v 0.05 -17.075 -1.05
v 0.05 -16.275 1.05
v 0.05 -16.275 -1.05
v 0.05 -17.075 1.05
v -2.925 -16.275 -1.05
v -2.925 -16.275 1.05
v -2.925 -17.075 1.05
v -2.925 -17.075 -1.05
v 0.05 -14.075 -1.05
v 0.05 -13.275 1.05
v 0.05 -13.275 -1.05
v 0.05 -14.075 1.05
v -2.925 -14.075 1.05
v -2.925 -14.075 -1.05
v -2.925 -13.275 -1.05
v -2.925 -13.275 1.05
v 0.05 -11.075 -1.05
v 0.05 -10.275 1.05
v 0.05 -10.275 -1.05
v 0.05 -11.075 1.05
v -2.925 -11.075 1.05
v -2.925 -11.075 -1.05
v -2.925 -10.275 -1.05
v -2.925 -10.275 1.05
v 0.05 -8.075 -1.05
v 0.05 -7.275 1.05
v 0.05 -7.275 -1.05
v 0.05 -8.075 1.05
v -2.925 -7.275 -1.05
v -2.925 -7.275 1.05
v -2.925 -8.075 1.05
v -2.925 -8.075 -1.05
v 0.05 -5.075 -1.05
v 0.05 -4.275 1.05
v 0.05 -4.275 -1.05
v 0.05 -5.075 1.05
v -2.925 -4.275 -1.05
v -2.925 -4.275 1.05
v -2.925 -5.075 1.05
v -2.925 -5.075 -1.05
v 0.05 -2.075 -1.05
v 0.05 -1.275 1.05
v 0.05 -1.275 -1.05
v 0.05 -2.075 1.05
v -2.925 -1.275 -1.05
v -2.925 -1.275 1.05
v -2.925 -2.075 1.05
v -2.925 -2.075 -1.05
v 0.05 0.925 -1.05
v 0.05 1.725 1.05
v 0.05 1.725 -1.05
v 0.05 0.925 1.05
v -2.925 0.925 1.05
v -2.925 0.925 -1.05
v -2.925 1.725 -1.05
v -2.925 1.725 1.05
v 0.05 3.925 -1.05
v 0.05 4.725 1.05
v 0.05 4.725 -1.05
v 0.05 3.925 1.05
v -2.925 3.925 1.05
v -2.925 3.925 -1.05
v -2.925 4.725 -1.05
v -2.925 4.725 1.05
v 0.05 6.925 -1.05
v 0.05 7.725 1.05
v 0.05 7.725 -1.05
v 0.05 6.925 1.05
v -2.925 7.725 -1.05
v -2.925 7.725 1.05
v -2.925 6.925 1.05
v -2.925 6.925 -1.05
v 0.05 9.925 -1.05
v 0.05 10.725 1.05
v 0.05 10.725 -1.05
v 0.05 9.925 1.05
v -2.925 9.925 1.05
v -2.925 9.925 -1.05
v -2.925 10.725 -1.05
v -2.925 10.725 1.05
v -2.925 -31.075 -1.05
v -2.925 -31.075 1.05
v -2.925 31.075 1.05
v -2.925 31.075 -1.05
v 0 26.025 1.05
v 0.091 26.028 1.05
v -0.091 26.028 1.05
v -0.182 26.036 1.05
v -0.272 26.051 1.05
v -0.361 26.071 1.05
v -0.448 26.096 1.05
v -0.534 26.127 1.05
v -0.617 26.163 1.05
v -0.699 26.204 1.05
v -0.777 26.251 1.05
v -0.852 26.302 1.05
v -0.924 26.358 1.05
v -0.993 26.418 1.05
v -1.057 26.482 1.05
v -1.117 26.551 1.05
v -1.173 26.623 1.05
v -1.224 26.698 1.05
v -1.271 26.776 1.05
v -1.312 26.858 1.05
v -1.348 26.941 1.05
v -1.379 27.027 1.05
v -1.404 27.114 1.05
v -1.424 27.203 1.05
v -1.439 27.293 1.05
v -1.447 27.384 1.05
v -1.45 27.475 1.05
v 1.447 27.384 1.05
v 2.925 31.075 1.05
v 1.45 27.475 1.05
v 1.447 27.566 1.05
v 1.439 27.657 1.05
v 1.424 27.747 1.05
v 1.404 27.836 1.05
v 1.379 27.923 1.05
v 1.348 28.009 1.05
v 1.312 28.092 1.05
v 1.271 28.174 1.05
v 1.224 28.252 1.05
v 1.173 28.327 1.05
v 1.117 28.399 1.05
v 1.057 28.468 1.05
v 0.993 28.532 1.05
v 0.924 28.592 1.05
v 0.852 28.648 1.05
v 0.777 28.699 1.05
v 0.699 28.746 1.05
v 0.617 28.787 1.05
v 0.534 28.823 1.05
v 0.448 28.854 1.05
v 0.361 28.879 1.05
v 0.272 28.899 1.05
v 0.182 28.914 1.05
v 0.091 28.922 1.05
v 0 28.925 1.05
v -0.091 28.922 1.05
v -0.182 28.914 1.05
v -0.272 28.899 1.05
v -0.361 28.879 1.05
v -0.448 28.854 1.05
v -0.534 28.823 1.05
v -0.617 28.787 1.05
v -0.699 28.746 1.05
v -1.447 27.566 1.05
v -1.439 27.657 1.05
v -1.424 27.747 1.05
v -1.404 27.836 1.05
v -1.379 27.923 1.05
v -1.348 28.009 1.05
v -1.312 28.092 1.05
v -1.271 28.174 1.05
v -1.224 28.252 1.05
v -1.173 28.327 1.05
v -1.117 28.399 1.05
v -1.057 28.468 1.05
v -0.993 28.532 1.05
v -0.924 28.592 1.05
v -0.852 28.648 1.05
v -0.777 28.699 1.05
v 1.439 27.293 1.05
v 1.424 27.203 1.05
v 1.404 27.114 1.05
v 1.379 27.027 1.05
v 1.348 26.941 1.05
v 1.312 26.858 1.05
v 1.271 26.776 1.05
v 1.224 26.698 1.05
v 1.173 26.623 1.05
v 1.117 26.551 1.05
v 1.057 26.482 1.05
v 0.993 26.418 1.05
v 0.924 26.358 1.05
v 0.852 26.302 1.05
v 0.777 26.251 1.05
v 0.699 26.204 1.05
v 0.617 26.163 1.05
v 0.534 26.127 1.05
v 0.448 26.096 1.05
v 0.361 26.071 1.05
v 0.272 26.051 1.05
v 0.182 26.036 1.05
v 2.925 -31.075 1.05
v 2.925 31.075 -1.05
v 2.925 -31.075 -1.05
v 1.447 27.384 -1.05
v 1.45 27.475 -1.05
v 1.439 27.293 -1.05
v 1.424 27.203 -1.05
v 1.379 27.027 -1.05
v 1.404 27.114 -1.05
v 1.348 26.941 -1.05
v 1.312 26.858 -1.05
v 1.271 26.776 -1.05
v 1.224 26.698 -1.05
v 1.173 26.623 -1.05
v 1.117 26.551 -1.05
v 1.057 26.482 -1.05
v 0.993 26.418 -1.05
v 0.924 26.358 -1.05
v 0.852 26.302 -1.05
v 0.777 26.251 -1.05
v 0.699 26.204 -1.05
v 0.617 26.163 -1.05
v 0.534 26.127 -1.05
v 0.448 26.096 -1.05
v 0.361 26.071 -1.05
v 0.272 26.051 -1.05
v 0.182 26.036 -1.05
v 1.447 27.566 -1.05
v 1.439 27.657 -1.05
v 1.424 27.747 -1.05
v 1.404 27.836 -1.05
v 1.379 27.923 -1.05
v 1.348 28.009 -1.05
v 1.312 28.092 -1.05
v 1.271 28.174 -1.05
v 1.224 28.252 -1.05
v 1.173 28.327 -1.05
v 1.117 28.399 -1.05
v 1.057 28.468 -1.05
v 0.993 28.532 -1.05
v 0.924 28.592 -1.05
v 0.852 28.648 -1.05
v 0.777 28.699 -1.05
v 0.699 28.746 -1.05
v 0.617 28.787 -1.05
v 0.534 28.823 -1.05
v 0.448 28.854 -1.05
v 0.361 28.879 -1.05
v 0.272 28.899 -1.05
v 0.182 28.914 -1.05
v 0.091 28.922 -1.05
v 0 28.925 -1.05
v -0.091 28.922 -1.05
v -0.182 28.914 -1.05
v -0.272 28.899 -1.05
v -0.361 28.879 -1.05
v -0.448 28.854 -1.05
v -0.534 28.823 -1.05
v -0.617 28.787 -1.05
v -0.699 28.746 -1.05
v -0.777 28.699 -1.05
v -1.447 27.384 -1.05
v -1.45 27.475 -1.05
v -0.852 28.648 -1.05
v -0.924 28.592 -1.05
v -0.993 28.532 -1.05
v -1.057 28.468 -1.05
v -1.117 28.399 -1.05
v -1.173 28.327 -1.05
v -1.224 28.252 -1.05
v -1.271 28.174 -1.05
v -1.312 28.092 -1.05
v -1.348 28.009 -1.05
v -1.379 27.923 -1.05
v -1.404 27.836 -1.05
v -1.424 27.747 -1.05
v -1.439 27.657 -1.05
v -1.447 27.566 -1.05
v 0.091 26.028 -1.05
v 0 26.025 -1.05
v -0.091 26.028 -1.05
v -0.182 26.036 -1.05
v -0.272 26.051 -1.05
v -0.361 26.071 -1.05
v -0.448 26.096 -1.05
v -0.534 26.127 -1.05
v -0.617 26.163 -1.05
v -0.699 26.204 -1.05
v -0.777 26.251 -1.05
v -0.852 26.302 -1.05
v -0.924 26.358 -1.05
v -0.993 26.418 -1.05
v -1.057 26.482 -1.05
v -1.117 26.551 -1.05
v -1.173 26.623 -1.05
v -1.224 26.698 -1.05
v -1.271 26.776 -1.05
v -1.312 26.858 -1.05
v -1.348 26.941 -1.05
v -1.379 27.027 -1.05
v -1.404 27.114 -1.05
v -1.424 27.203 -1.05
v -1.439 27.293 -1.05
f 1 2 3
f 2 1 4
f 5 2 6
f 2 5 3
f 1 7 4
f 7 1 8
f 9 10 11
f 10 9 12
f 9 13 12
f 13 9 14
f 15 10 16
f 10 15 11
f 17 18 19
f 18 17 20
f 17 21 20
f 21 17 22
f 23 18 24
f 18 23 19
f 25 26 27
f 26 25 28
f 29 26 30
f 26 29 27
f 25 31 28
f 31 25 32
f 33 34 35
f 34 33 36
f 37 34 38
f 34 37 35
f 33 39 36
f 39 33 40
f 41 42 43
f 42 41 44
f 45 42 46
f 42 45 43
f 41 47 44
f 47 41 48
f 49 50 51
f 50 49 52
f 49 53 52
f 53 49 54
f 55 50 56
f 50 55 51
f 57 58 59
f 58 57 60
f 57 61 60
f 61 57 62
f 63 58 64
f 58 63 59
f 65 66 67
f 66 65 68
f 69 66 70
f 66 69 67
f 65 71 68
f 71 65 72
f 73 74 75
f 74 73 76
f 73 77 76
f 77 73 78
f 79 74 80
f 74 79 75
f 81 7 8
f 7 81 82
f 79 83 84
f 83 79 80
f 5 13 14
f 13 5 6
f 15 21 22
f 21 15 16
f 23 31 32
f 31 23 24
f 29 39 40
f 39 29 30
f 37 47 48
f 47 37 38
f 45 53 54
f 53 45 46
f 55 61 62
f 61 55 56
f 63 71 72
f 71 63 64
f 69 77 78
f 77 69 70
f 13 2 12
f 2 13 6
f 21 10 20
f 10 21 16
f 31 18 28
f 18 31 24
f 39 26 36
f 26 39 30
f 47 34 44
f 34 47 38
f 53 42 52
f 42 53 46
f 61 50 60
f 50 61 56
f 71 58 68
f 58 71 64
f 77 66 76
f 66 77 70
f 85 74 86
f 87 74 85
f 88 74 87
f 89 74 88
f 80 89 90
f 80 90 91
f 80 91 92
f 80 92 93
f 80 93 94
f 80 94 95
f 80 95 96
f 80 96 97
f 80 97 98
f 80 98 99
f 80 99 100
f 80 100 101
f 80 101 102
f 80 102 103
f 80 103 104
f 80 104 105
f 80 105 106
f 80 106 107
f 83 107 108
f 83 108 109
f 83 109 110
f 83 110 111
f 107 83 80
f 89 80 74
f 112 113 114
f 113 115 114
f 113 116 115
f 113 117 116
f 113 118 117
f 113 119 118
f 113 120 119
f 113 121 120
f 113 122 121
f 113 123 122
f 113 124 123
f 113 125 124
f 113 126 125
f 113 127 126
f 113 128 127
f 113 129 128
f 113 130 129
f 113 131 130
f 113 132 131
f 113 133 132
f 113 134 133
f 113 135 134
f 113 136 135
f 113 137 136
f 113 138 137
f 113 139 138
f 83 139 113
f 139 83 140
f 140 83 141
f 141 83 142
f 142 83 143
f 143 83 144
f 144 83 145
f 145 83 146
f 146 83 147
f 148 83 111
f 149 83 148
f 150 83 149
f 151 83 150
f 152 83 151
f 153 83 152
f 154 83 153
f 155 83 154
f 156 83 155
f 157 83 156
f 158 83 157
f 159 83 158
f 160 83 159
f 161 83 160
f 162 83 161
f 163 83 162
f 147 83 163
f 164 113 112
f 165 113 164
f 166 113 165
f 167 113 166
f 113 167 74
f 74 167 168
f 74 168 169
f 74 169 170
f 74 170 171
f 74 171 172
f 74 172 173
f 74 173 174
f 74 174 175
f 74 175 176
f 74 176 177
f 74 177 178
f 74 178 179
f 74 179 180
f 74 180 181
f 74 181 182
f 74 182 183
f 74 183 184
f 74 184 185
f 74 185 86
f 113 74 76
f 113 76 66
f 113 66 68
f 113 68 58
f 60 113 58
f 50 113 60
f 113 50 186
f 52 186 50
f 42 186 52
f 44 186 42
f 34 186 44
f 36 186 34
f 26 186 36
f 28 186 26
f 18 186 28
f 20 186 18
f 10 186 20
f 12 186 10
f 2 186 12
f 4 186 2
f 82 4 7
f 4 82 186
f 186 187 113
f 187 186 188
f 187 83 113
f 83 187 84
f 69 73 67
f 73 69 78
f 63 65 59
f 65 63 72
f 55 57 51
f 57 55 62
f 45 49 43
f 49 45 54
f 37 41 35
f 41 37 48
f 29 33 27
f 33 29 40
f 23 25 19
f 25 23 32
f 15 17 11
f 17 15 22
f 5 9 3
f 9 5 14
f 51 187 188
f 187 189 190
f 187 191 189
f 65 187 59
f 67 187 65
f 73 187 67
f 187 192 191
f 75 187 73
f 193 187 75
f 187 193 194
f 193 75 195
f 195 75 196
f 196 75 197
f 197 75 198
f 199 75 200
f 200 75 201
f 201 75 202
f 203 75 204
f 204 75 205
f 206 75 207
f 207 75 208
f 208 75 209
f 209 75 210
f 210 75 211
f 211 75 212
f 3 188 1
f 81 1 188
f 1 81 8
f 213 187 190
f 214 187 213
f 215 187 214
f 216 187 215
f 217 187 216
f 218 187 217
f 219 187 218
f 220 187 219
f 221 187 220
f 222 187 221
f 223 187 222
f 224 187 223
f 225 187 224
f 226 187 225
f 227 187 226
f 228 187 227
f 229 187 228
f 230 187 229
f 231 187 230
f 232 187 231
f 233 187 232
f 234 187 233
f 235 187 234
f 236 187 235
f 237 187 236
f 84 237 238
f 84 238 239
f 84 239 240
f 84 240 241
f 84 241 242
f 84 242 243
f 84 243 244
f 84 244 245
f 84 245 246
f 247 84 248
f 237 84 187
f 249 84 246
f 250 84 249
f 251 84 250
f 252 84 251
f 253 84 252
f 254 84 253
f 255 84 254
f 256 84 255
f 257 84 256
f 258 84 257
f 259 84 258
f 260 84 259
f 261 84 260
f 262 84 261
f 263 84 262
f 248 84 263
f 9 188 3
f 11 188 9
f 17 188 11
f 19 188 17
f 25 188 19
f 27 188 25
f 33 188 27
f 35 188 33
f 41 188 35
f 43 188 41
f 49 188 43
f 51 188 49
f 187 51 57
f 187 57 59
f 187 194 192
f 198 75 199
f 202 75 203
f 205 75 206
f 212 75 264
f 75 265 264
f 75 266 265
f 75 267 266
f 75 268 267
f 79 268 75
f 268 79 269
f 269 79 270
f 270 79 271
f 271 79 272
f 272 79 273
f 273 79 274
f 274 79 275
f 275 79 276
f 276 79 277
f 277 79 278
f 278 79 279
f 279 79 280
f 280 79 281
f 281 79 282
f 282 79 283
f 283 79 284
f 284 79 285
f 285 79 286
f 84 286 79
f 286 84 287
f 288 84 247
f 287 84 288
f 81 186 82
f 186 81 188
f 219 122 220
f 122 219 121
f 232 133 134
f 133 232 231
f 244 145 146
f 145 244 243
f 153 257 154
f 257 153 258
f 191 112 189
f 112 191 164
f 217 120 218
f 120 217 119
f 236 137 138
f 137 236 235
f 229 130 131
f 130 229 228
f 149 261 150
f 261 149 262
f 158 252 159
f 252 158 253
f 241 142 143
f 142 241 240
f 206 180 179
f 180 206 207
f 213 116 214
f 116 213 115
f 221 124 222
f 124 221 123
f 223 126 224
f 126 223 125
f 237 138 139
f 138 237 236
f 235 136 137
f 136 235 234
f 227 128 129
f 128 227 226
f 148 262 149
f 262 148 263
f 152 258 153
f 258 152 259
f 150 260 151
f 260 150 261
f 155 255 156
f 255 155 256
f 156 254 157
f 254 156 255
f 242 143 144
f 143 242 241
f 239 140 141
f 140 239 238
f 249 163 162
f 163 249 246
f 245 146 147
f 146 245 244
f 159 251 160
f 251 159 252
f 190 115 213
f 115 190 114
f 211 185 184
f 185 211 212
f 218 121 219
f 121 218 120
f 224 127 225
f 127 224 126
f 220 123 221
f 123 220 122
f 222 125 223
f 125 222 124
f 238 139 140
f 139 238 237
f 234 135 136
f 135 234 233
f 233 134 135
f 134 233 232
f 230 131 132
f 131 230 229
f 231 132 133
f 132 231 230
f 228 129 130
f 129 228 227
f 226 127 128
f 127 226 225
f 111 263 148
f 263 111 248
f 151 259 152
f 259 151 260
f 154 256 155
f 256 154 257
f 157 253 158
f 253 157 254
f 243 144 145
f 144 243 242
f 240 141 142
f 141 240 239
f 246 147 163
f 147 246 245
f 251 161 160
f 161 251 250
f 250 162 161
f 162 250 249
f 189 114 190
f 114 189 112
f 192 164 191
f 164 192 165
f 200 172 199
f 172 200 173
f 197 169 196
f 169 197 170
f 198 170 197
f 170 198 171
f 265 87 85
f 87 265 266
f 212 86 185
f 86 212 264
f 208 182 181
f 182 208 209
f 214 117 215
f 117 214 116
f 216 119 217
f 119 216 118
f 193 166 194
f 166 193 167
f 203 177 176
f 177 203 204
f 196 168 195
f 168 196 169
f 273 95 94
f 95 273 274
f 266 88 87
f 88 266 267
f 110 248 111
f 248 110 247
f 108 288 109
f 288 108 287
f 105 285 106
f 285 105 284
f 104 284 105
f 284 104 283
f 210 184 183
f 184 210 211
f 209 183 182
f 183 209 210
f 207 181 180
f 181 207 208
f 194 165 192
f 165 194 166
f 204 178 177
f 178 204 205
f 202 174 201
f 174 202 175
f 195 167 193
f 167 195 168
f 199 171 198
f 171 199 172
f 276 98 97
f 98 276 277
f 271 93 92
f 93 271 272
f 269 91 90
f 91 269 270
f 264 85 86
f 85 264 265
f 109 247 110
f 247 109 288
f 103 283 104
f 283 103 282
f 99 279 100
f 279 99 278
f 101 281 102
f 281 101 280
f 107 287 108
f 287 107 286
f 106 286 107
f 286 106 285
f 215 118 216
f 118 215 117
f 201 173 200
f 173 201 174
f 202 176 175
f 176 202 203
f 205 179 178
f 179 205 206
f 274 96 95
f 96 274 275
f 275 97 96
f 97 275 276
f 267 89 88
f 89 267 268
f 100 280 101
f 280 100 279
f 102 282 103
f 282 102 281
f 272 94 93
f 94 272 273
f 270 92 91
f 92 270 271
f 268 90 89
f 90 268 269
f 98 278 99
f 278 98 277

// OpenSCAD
old();

module old(){

width = 05.85;
length = 62.15;
thickness = 2.1;

hole_fromtop = 3.6;
hole_halkaisija = 2.9;

cut_height = 0.7;
cut_distance = 2.3;
cuts_frombottom = 14.4;
cuts = 10;

$fn = 100;


difference(){
    cube(size=[width, length, thickness], center=true);

    // Hole to the upper end
    translate([0,length/2 - hole_fromtop])
    cylinder(r=hole_halkaisija/2, h=10, center=true);

    // Cuts
    for (i = [0 : cuts - 1]){
        translate([-width/4, - length/2 + cuts_frombottom + i * (cut_height + cut_distance) ,0])
        cube(size=[width / 2 + 0.1, 0.8, thickness+1], center=true);

        }
    }
}
